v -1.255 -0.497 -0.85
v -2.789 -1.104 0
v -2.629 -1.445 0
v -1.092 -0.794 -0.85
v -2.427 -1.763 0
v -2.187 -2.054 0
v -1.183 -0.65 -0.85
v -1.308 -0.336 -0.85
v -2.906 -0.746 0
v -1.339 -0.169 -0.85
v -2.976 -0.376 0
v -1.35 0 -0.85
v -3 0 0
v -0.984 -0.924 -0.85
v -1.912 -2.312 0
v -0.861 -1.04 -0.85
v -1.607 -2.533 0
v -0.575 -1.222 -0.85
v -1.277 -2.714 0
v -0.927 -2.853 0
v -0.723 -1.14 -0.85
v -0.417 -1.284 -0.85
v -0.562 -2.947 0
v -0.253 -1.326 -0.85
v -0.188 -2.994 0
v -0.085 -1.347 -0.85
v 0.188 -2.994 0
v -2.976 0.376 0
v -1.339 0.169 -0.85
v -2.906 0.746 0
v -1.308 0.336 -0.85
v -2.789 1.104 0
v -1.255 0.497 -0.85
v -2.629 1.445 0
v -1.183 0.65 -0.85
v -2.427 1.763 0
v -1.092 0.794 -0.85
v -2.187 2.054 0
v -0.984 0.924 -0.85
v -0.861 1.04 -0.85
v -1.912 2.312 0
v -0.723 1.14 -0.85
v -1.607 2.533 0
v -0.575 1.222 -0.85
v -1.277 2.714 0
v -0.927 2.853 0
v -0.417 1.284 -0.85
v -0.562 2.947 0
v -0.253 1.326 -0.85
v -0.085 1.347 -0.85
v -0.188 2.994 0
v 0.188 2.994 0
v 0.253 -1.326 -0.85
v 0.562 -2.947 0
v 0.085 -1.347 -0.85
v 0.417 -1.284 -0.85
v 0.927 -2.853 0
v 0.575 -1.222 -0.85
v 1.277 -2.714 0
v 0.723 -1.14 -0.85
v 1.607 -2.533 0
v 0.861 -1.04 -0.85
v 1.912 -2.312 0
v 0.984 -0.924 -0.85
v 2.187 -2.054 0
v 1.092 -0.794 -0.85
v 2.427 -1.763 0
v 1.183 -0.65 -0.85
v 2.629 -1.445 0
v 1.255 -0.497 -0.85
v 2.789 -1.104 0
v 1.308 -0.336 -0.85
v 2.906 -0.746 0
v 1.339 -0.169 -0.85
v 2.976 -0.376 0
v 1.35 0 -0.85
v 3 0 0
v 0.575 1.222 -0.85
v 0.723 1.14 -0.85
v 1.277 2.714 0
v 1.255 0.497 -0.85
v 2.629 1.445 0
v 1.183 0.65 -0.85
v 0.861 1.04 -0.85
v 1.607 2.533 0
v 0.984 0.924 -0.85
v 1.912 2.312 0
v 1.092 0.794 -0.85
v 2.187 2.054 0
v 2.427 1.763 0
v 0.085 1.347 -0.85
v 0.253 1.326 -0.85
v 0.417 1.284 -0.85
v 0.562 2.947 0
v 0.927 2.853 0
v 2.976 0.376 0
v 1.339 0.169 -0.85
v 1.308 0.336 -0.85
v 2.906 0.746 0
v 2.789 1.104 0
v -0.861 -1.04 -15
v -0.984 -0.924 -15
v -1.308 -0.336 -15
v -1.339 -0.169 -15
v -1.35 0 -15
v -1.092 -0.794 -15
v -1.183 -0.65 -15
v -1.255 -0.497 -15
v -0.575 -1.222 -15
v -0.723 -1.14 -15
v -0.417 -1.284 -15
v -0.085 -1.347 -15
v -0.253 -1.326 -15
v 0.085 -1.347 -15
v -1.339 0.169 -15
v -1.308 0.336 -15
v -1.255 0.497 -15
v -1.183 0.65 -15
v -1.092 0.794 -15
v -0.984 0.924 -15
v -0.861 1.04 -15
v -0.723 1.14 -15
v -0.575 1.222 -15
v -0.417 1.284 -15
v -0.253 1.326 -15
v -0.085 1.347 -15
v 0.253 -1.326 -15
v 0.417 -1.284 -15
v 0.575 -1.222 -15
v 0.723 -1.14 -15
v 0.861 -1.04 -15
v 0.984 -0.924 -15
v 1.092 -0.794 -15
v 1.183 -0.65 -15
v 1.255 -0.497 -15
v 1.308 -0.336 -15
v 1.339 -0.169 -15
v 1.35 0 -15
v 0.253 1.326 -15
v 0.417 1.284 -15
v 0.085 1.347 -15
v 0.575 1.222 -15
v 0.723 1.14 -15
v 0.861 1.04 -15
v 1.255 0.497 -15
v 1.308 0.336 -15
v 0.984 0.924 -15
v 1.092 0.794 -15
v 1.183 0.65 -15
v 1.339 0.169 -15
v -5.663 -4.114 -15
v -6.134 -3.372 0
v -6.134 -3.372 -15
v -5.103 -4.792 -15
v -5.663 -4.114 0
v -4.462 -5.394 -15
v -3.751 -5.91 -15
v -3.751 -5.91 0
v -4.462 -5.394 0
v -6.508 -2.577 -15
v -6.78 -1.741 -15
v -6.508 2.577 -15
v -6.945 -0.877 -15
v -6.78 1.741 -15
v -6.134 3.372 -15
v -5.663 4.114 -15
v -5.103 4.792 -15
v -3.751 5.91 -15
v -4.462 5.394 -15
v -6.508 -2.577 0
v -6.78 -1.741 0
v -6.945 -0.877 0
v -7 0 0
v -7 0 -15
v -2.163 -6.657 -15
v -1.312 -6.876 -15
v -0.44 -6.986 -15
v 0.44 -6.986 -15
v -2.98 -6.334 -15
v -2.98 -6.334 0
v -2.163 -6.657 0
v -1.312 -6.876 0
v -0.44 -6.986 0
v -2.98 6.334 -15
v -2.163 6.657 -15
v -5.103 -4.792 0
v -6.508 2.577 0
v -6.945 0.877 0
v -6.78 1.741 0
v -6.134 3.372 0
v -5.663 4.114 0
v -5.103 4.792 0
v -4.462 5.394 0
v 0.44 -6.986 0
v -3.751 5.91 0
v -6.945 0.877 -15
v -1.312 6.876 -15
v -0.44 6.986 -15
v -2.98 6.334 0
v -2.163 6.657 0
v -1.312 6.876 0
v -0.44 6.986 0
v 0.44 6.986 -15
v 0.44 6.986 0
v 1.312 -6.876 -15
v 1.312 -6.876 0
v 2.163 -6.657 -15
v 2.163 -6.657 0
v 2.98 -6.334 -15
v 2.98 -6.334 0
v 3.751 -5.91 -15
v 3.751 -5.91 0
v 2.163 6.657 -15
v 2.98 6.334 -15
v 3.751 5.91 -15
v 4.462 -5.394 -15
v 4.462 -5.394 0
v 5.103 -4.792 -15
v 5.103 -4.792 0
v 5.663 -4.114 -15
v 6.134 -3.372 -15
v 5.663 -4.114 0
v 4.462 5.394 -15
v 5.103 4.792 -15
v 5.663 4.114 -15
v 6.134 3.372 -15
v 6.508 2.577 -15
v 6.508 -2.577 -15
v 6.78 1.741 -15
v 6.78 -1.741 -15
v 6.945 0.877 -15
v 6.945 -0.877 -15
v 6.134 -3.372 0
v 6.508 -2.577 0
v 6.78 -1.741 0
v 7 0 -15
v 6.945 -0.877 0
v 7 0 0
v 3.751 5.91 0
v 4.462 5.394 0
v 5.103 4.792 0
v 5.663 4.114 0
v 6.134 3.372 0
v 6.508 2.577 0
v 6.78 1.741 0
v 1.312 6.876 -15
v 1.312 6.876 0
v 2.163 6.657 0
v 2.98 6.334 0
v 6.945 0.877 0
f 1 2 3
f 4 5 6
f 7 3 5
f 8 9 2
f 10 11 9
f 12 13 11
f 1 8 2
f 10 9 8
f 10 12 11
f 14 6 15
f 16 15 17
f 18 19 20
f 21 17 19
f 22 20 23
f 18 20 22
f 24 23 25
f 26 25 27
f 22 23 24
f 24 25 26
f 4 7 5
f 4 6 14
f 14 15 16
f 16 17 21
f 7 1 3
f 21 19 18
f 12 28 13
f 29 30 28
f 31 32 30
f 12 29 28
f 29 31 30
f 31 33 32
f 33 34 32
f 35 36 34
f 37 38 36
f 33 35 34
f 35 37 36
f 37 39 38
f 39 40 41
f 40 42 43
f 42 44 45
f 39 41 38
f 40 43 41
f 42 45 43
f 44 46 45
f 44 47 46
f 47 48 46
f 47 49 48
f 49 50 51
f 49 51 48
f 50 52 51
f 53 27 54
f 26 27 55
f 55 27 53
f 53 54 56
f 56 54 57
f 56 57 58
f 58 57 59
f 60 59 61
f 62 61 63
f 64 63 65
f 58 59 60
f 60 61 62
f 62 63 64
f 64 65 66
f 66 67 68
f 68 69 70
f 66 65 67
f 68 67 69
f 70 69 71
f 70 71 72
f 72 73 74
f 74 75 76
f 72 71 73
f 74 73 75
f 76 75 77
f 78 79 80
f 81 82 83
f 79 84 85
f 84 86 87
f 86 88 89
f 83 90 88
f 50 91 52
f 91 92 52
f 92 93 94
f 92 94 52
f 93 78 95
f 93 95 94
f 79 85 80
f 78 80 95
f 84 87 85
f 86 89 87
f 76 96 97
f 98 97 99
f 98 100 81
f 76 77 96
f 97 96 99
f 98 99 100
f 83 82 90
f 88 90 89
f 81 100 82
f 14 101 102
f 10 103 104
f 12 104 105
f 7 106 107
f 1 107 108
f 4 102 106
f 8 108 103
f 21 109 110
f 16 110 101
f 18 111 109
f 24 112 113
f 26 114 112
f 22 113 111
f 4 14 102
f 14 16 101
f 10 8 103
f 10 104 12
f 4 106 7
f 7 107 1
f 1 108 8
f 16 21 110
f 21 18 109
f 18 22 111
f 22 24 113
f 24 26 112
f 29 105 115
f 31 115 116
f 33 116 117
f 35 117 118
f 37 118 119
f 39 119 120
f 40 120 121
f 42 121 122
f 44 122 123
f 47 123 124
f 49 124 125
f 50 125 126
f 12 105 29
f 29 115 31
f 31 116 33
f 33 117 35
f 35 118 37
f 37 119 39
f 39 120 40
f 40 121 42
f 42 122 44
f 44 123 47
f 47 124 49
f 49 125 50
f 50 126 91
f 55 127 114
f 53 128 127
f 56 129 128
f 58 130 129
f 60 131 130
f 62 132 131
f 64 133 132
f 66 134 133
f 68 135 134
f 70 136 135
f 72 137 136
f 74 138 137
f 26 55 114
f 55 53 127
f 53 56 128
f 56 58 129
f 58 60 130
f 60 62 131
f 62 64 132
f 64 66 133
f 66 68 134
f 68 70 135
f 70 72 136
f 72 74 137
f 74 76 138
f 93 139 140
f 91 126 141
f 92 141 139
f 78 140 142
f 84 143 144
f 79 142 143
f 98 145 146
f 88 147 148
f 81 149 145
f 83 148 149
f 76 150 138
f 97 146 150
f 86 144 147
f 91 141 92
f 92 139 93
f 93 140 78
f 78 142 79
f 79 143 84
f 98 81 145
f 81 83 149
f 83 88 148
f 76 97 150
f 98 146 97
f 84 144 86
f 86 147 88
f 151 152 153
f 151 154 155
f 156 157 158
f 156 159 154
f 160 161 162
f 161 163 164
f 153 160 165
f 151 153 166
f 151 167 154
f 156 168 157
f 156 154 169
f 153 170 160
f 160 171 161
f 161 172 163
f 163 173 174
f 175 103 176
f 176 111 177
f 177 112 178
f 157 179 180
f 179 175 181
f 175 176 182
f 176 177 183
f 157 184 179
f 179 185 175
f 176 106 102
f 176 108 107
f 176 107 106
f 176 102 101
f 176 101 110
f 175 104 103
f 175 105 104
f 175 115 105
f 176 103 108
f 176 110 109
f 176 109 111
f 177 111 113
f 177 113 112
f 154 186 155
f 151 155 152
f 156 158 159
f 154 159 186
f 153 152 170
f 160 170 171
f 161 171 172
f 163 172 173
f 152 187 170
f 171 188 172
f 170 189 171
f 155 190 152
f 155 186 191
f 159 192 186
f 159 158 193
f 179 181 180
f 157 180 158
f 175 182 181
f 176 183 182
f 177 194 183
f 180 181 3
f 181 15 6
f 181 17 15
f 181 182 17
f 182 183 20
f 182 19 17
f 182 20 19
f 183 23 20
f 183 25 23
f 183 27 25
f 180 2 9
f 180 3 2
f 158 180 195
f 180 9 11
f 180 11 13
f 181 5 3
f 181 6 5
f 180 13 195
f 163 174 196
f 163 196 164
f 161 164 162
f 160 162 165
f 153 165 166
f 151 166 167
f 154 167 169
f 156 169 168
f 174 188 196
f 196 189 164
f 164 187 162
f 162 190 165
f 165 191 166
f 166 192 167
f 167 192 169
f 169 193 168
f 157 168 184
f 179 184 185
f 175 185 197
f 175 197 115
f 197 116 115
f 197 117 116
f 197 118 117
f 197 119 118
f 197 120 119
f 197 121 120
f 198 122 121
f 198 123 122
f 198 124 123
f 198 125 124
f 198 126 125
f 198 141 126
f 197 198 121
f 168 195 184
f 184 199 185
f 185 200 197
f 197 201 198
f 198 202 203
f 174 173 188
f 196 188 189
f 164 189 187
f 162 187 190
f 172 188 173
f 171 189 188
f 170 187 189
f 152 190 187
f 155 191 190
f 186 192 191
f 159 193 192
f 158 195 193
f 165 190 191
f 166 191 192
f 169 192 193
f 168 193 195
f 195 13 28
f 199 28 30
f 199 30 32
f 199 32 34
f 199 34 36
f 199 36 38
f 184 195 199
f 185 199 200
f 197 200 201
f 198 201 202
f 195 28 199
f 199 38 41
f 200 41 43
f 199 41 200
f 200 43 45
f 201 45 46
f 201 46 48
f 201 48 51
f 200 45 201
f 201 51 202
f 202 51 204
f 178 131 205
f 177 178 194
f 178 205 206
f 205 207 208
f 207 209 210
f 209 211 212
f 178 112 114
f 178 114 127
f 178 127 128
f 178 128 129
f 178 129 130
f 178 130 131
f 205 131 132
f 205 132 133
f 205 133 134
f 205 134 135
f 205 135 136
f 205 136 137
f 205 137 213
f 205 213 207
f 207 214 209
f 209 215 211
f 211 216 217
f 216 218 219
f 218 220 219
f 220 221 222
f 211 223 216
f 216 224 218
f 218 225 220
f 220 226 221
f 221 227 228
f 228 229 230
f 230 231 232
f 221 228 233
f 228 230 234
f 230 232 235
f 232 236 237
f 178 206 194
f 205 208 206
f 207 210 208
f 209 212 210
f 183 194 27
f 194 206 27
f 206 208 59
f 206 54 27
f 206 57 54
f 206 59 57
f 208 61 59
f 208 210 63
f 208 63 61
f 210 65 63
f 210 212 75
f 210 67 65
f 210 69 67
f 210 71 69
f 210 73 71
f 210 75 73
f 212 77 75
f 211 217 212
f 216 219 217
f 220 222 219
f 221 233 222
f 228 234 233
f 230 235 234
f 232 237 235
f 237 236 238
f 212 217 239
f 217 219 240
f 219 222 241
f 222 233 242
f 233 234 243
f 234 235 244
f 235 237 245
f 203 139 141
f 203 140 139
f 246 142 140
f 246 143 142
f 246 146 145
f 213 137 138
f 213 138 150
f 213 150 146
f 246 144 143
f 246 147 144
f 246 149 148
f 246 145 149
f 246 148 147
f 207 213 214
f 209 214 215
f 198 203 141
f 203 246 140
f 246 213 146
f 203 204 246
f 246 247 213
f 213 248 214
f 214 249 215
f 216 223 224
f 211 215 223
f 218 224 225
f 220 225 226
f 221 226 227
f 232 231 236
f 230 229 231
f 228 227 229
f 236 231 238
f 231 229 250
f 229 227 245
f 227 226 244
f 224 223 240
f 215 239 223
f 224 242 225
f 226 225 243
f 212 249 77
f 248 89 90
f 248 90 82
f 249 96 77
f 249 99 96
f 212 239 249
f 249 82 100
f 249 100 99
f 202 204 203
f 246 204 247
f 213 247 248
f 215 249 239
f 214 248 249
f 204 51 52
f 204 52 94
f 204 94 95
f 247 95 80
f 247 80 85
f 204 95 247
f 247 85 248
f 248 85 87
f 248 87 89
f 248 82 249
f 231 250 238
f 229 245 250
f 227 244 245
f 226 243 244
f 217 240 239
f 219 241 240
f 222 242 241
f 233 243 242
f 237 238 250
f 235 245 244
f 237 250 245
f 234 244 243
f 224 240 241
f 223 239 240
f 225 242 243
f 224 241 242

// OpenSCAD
$fn = 50;

difference() {
	union() {
		translate(v = [0, 0, -15.0]) {
			cylinder(h = 15, r = 7.0);
		}
	}
	union() {
		translate(v = [0, 0, 0]) {
			rotate(a = [0, 0, 0]) {
				difference() {
					union() {
						translate(v = [0, 0, -18.0]) {
							cylinder(h = 18, r = 1.0);
						}
						translate(v = [0, 0, -0.85]) {
							cylinder(h = 0.85, r1 = 1.35, r2 = 3.0);
						}
						translate(v = [0, 0, -18.0]) {
							cylinder(h = 18, r = 1.35);
						}
						translate(v = [0, 0, -18.0]) {
							cylinder(h = 18, r = 1.0);
						}
					}
					union();
				}
			}
		}
	}
}
